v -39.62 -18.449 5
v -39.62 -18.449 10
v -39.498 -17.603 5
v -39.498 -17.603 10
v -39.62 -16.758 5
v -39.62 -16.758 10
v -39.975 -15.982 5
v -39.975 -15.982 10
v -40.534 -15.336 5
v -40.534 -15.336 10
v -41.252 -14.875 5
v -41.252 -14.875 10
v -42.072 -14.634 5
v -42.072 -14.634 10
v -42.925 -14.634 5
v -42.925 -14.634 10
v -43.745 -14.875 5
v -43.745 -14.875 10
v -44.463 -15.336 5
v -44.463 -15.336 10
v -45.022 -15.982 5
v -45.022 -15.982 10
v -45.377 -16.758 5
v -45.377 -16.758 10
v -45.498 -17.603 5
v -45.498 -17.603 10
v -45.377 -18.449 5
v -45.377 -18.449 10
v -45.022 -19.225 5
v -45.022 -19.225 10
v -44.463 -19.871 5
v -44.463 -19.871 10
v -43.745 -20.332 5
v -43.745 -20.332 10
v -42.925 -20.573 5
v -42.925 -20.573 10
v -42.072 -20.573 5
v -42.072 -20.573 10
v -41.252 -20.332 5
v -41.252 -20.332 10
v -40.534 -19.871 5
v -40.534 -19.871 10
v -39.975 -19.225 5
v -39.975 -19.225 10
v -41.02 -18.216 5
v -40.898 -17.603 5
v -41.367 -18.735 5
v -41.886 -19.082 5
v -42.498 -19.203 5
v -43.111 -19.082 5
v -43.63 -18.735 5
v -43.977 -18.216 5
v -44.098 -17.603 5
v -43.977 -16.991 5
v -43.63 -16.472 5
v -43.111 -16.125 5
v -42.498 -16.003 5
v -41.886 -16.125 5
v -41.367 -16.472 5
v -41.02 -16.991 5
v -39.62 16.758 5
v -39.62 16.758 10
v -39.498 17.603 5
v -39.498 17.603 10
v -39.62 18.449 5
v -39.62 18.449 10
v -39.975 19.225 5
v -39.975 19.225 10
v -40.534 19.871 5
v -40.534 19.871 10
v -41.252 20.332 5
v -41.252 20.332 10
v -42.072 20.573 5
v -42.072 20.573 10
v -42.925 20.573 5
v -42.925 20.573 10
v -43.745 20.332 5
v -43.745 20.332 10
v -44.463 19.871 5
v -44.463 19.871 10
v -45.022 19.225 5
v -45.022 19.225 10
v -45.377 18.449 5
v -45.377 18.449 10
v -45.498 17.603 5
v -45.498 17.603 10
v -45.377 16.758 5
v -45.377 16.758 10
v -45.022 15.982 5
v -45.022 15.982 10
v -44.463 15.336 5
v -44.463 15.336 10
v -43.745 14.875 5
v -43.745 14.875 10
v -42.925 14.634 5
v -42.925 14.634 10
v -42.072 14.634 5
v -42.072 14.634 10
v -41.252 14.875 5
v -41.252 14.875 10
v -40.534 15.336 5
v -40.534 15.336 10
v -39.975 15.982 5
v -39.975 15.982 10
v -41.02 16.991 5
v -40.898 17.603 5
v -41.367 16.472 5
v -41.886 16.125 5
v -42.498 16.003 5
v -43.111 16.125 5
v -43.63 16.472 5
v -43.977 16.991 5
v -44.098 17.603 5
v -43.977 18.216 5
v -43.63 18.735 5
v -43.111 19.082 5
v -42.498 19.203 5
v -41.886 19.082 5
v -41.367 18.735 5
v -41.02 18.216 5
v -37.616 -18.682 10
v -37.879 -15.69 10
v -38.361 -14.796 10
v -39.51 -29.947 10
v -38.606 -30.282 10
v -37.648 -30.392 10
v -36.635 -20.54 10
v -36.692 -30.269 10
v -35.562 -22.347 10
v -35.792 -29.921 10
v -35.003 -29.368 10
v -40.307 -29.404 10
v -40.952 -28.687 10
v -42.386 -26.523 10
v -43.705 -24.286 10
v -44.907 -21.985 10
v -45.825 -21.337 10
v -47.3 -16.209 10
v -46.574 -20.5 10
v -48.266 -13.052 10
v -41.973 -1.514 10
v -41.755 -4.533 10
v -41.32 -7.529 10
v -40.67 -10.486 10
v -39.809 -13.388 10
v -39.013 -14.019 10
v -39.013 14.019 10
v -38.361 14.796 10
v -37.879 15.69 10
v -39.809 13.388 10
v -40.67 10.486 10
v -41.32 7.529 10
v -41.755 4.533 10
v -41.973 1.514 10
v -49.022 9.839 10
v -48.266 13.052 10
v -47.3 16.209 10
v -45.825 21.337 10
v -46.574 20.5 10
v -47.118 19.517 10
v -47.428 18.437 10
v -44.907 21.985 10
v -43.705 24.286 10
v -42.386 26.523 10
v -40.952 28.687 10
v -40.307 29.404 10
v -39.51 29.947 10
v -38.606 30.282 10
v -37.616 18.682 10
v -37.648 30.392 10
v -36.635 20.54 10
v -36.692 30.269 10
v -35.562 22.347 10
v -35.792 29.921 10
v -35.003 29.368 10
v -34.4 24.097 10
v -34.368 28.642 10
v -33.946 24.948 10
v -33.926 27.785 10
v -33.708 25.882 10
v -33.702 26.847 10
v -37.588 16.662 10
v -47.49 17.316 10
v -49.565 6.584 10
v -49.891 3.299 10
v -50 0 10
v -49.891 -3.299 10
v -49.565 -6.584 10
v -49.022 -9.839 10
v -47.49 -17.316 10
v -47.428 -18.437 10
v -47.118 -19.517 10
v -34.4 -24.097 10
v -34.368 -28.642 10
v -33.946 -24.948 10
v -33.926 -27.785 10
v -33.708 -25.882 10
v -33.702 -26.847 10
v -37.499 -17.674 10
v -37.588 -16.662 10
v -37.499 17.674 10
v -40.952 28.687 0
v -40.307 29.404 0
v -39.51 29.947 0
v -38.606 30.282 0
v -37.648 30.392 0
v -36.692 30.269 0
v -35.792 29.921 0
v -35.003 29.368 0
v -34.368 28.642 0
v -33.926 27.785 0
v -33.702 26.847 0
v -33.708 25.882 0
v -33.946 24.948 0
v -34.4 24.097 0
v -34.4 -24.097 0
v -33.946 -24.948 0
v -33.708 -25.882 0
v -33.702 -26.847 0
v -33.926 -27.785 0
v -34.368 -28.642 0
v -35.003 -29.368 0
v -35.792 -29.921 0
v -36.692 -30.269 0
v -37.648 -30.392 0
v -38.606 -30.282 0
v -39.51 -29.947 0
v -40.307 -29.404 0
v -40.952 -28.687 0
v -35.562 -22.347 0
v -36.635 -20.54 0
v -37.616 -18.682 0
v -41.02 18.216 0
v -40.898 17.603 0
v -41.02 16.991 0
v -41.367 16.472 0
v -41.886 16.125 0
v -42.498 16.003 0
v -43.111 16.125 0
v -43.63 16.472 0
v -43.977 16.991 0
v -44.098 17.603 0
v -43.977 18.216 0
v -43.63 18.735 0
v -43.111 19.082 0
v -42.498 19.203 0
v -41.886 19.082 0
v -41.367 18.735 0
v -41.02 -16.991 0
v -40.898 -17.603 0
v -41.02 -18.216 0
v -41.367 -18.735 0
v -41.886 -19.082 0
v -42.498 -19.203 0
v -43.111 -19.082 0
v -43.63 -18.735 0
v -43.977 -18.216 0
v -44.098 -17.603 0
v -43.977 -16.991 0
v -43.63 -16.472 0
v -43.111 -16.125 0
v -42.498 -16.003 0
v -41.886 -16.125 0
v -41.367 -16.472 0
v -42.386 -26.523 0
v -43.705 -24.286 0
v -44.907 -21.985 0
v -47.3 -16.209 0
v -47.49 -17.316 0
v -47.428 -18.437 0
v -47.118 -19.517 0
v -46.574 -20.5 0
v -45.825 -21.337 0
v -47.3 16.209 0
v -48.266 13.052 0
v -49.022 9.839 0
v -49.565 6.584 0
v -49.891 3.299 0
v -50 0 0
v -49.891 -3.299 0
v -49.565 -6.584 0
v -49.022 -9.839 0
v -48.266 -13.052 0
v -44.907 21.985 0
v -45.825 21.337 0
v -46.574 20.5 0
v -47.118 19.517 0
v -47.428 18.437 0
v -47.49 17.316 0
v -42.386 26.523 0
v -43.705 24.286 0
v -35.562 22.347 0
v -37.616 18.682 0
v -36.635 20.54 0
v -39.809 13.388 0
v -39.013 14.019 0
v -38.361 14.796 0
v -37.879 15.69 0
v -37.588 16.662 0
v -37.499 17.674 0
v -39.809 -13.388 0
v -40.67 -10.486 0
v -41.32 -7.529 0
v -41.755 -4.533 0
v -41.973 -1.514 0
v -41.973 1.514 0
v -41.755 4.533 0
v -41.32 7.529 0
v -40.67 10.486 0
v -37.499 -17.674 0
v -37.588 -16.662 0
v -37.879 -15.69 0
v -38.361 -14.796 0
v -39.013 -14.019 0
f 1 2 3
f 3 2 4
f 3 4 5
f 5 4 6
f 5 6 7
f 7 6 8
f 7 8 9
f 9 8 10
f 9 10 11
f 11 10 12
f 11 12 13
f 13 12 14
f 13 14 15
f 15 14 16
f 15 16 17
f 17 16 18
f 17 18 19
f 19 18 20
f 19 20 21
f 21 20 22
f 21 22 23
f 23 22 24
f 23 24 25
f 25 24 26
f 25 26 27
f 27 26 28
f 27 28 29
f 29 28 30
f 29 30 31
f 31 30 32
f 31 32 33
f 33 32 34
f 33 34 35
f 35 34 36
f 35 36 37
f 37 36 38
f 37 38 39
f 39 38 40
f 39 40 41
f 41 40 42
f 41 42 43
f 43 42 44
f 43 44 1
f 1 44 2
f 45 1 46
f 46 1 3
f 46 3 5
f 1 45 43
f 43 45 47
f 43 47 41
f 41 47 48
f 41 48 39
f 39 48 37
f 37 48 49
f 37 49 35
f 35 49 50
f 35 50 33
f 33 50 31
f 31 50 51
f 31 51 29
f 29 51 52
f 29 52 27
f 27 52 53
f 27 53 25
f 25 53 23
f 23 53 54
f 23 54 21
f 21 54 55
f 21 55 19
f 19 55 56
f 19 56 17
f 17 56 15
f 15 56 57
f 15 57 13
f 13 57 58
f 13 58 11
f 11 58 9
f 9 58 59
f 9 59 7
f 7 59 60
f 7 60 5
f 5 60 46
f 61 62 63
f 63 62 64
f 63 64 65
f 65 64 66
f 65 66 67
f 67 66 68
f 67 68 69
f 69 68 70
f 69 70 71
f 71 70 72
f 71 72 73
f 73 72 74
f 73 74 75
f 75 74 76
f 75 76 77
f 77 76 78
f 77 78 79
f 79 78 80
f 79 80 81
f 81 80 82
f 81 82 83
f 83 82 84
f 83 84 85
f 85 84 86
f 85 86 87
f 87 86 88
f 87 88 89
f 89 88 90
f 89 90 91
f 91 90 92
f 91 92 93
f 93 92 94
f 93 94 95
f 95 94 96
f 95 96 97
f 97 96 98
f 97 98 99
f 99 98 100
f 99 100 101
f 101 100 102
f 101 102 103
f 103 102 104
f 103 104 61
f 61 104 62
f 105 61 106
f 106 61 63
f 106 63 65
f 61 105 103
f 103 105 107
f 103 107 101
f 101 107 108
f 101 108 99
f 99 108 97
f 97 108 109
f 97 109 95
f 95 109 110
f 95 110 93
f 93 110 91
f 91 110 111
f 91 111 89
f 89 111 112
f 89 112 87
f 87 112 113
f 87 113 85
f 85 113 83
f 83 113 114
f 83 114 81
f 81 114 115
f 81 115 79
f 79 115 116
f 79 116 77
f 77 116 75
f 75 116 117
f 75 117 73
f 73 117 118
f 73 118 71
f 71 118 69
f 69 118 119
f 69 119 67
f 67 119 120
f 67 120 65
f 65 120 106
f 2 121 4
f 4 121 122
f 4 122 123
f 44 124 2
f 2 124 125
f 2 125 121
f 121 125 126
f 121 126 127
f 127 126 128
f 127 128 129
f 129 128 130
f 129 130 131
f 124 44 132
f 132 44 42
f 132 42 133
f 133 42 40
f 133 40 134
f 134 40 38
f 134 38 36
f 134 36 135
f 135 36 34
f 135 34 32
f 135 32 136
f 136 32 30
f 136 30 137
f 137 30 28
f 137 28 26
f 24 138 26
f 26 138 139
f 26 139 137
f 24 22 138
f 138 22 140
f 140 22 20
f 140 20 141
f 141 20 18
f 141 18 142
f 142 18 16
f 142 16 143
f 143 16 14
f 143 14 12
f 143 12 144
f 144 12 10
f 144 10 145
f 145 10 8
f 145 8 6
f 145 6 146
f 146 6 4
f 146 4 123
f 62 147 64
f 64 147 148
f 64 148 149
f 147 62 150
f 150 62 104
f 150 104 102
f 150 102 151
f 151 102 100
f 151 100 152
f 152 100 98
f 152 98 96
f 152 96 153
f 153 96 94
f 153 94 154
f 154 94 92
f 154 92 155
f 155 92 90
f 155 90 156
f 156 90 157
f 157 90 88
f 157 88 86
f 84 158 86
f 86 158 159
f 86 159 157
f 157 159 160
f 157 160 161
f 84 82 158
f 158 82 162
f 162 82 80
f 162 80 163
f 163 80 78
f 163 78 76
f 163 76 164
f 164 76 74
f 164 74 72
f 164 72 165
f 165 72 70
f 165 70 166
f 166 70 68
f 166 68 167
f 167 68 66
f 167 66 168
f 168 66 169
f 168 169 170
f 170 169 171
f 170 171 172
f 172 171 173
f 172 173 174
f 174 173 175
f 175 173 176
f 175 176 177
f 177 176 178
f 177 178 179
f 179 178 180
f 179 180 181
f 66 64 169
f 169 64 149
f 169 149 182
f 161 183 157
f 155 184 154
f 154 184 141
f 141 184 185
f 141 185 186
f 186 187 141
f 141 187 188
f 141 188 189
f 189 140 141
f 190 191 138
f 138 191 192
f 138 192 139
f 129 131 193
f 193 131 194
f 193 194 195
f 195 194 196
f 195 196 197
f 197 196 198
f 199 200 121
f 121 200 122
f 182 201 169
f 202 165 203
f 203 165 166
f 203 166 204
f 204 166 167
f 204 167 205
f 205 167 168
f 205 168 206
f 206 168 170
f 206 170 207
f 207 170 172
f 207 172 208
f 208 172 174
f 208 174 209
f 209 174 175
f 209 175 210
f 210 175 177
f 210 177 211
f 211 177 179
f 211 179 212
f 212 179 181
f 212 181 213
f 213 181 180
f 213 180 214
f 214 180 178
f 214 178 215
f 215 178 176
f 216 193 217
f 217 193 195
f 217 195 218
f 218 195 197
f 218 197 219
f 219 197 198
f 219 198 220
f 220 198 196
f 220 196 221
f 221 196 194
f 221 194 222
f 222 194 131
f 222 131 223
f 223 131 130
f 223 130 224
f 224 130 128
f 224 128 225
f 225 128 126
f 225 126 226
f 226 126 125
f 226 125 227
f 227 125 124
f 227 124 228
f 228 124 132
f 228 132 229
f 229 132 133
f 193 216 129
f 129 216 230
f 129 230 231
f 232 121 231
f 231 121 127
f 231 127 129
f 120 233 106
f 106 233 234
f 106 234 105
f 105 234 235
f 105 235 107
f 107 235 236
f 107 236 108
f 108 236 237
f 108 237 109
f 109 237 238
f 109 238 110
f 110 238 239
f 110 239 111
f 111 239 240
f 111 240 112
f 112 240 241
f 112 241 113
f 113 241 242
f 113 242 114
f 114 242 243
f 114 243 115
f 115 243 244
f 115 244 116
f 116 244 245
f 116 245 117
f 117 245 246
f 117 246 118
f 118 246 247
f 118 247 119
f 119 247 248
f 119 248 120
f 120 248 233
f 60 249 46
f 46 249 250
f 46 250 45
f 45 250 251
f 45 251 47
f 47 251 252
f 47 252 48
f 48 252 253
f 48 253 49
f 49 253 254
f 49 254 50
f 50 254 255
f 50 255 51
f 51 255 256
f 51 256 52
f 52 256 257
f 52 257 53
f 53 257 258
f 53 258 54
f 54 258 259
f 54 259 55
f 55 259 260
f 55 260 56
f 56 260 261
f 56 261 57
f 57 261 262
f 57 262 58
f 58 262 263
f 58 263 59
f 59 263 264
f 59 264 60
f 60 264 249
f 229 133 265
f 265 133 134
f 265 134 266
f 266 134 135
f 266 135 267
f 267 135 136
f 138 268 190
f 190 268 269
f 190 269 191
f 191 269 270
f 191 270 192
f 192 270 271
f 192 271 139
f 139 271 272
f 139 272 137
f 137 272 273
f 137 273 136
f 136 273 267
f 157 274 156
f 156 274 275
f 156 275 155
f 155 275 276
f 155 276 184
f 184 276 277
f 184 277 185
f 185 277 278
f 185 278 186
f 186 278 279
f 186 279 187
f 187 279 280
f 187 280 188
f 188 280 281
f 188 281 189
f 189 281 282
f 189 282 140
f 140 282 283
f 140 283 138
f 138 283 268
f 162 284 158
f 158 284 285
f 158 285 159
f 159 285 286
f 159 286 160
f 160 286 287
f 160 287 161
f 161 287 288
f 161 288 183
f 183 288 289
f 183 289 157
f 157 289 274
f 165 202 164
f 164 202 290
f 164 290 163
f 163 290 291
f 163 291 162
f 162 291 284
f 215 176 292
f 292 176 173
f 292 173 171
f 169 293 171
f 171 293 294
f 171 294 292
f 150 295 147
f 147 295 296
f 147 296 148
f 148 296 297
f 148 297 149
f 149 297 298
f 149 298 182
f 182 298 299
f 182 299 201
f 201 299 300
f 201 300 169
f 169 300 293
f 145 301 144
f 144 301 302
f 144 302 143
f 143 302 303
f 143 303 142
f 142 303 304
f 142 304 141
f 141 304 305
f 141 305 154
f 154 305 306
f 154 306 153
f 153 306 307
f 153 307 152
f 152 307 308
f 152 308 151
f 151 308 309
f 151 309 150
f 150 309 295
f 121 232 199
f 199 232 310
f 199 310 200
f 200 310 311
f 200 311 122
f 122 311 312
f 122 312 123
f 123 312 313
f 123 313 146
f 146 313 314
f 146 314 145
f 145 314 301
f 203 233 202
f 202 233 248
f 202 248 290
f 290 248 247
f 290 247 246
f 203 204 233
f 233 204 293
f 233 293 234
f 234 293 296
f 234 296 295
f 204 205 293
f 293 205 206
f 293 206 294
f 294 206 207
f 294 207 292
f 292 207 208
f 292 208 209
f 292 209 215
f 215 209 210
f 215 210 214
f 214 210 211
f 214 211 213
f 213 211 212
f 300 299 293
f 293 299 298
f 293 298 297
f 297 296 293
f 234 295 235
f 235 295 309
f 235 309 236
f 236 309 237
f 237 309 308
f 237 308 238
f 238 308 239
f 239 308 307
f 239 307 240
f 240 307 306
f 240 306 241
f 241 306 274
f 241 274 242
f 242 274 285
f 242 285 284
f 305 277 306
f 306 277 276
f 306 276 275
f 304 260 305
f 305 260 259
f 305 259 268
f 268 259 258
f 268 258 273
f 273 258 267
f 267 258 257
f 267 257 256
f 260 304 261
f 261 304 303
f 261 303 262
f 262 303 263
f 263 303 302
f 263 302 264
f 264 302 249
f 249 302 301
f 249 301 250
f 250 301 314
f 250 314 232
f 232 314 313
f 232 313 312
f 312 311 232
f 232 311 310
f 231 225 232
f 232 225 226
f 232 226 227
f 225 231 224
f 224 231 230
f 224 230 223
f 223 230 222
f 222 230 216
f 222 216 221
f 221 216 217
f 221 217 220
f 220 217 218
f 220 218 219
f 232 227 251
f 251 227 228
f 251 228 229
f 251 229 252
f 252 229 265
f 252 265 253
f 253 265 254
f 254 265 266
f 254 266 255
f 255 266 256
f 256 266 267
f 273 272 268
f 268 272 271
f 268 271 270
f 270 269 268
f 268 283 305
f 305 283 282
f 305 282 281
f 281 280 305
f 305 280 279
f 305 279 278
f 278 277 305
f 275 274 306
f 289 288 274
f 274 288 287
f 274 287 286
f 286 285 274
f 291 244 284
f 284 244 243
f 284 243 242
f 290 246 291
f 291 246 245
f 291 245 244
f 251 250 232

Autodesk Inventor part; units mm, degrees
ref_plane "YZ Plane" through (0, 0, 0) normal (1, 0, 0) x (0, 1, 0)
ref_plane "XZ Plane" through (0, 0, 0) normal (0, 1, 0) x (-1, 0, 0)
ref_plane "XY Plane" through (0, 0, 0) normal (0, 0, 1) x (1, 0, 0)
sketch "スケッチ1" plane through (0, 0, 0) normal (0, 0, 1) x (1, 0, 0)
  circle A0 centre (0, 0) radius 46
  circle A1 centre (0, 0) radius 50
  circle A2 centre (0, 0) radius 42
  line L0 (0, 0) -> (0, 54.8528)
  line L1 (0, 0) -> (-20.7697, 50.1426)
  circle A3 centre (-17.6034, 42.4985) radius 1.6
  circle A4 centre (-42.4985, 17.6034) radius 1.6
  circle A5 centre (-42.4985, -17.6034) radius 1.6
  circle A6 centre (-17.6034, -42.4985) radius 1.6
  circle A7 centre (17.6034, -42.4985) radius 1.6
  circle A8 centre (42.4985, -17.6034) radius 1.6
  circle A9 centre (42.4985, 17.6034) radius 1.6
  circle A10 centre (17.6034, 42.4985) radius 1.6
  line L2 (0, 0) -> (-55.1659, -46.2897)
  line L3 (-55.1659, -46.2897) -> (-55.1659, 46.2897)
  line L4 (-55.1659, 46.2897) -> (0, 0)
  line L5 (0, 0) -> (-76.7662, 0)
  circle A11 centre (-42.4985, 17.6034) radius 5
  circle A12 centre (-42.4985, -17.6034) radius 5
  point P0 (-32.1739, -26.9971)
  point P1 (-32.1739, 26.9971)
  point P2 (-38.3022, 32.1394)
  point P3 (-38.3022, -32.1394)
  point P4 (-44.9073, -21.985)
  point P5 (-47.2999, -16.2085)
  point P6 (-39.8089, -13.3884)
  point P7 (-37.6162, -18.6821)
  point P8 (-39.8089, 13.3884)
  point P9 (-37.6162, 18.6821)
  point P10 (-47.2999, 16.2085)
  point P11 (-44.9073, 21.985)
  dimension "d0" = 92
  dimension "d1" = 100
  dimension "d2" = 84
  dimension "d3" = 22.5
  dimension "d4" = 3.2
  dimension "d7" = 360
  dimension "d9" = 80
  dimension "d10" = 40
  dimension "d18" = 10
  dimension "d19" = 10
extrude "押し出し1" add sketch "スケッチ1" along normal blind 10 contours L2 A1 A12 A0 | A0 A12 A2 L2 | A2 A11 A0 L4 | L5 A0 A11 A2 | A2 A12 A0 L5 | L4 A0 A11 A1 | A12 A1 A0 A5 | A0 A5 A12 A2 | A2 A12 | A11 A2 | A2 A11 A0 A4 | L5 A1 A11 A0 | A0 A12 A1 L5 | A12 A1 | A11 A0 A4 A1 | A1 A11
fillet "フィレット1" radius 4 4 edges at (-32.1739, -26.9971, 5) (-38.3022, -32.1394, 5) (-38.3022, 32.1394, 5) (-32.1739, 26.9971, 5)
sketch "スケッチ2" plane through (0, 0, 10) normal (0, 0, 1) x (1, 0, 0)
  circle A0 centre (-42.4985, -17.6034) radius 1.6 projected
  circle A1 centre (-42.4985, -17.6034) radius 3
  circle A2 centre (-42.4985, 17.6034) radius 1.6 projected
  circle A3 centre (-42.4985, 17.6034) radius 3
  point P0 (0, 0)
  dimension "d14" = 6
  dimension "d15" = 6
extrude "押し出し2" cut sketch "スケッチ2" against normal blind 5 contours A0 | A1 | A2 | A3
equation "\"d10\" = 0.5 * d9"
properties part number "RP_Hip-Link-Limit-short" material "ABS プラスチック"
